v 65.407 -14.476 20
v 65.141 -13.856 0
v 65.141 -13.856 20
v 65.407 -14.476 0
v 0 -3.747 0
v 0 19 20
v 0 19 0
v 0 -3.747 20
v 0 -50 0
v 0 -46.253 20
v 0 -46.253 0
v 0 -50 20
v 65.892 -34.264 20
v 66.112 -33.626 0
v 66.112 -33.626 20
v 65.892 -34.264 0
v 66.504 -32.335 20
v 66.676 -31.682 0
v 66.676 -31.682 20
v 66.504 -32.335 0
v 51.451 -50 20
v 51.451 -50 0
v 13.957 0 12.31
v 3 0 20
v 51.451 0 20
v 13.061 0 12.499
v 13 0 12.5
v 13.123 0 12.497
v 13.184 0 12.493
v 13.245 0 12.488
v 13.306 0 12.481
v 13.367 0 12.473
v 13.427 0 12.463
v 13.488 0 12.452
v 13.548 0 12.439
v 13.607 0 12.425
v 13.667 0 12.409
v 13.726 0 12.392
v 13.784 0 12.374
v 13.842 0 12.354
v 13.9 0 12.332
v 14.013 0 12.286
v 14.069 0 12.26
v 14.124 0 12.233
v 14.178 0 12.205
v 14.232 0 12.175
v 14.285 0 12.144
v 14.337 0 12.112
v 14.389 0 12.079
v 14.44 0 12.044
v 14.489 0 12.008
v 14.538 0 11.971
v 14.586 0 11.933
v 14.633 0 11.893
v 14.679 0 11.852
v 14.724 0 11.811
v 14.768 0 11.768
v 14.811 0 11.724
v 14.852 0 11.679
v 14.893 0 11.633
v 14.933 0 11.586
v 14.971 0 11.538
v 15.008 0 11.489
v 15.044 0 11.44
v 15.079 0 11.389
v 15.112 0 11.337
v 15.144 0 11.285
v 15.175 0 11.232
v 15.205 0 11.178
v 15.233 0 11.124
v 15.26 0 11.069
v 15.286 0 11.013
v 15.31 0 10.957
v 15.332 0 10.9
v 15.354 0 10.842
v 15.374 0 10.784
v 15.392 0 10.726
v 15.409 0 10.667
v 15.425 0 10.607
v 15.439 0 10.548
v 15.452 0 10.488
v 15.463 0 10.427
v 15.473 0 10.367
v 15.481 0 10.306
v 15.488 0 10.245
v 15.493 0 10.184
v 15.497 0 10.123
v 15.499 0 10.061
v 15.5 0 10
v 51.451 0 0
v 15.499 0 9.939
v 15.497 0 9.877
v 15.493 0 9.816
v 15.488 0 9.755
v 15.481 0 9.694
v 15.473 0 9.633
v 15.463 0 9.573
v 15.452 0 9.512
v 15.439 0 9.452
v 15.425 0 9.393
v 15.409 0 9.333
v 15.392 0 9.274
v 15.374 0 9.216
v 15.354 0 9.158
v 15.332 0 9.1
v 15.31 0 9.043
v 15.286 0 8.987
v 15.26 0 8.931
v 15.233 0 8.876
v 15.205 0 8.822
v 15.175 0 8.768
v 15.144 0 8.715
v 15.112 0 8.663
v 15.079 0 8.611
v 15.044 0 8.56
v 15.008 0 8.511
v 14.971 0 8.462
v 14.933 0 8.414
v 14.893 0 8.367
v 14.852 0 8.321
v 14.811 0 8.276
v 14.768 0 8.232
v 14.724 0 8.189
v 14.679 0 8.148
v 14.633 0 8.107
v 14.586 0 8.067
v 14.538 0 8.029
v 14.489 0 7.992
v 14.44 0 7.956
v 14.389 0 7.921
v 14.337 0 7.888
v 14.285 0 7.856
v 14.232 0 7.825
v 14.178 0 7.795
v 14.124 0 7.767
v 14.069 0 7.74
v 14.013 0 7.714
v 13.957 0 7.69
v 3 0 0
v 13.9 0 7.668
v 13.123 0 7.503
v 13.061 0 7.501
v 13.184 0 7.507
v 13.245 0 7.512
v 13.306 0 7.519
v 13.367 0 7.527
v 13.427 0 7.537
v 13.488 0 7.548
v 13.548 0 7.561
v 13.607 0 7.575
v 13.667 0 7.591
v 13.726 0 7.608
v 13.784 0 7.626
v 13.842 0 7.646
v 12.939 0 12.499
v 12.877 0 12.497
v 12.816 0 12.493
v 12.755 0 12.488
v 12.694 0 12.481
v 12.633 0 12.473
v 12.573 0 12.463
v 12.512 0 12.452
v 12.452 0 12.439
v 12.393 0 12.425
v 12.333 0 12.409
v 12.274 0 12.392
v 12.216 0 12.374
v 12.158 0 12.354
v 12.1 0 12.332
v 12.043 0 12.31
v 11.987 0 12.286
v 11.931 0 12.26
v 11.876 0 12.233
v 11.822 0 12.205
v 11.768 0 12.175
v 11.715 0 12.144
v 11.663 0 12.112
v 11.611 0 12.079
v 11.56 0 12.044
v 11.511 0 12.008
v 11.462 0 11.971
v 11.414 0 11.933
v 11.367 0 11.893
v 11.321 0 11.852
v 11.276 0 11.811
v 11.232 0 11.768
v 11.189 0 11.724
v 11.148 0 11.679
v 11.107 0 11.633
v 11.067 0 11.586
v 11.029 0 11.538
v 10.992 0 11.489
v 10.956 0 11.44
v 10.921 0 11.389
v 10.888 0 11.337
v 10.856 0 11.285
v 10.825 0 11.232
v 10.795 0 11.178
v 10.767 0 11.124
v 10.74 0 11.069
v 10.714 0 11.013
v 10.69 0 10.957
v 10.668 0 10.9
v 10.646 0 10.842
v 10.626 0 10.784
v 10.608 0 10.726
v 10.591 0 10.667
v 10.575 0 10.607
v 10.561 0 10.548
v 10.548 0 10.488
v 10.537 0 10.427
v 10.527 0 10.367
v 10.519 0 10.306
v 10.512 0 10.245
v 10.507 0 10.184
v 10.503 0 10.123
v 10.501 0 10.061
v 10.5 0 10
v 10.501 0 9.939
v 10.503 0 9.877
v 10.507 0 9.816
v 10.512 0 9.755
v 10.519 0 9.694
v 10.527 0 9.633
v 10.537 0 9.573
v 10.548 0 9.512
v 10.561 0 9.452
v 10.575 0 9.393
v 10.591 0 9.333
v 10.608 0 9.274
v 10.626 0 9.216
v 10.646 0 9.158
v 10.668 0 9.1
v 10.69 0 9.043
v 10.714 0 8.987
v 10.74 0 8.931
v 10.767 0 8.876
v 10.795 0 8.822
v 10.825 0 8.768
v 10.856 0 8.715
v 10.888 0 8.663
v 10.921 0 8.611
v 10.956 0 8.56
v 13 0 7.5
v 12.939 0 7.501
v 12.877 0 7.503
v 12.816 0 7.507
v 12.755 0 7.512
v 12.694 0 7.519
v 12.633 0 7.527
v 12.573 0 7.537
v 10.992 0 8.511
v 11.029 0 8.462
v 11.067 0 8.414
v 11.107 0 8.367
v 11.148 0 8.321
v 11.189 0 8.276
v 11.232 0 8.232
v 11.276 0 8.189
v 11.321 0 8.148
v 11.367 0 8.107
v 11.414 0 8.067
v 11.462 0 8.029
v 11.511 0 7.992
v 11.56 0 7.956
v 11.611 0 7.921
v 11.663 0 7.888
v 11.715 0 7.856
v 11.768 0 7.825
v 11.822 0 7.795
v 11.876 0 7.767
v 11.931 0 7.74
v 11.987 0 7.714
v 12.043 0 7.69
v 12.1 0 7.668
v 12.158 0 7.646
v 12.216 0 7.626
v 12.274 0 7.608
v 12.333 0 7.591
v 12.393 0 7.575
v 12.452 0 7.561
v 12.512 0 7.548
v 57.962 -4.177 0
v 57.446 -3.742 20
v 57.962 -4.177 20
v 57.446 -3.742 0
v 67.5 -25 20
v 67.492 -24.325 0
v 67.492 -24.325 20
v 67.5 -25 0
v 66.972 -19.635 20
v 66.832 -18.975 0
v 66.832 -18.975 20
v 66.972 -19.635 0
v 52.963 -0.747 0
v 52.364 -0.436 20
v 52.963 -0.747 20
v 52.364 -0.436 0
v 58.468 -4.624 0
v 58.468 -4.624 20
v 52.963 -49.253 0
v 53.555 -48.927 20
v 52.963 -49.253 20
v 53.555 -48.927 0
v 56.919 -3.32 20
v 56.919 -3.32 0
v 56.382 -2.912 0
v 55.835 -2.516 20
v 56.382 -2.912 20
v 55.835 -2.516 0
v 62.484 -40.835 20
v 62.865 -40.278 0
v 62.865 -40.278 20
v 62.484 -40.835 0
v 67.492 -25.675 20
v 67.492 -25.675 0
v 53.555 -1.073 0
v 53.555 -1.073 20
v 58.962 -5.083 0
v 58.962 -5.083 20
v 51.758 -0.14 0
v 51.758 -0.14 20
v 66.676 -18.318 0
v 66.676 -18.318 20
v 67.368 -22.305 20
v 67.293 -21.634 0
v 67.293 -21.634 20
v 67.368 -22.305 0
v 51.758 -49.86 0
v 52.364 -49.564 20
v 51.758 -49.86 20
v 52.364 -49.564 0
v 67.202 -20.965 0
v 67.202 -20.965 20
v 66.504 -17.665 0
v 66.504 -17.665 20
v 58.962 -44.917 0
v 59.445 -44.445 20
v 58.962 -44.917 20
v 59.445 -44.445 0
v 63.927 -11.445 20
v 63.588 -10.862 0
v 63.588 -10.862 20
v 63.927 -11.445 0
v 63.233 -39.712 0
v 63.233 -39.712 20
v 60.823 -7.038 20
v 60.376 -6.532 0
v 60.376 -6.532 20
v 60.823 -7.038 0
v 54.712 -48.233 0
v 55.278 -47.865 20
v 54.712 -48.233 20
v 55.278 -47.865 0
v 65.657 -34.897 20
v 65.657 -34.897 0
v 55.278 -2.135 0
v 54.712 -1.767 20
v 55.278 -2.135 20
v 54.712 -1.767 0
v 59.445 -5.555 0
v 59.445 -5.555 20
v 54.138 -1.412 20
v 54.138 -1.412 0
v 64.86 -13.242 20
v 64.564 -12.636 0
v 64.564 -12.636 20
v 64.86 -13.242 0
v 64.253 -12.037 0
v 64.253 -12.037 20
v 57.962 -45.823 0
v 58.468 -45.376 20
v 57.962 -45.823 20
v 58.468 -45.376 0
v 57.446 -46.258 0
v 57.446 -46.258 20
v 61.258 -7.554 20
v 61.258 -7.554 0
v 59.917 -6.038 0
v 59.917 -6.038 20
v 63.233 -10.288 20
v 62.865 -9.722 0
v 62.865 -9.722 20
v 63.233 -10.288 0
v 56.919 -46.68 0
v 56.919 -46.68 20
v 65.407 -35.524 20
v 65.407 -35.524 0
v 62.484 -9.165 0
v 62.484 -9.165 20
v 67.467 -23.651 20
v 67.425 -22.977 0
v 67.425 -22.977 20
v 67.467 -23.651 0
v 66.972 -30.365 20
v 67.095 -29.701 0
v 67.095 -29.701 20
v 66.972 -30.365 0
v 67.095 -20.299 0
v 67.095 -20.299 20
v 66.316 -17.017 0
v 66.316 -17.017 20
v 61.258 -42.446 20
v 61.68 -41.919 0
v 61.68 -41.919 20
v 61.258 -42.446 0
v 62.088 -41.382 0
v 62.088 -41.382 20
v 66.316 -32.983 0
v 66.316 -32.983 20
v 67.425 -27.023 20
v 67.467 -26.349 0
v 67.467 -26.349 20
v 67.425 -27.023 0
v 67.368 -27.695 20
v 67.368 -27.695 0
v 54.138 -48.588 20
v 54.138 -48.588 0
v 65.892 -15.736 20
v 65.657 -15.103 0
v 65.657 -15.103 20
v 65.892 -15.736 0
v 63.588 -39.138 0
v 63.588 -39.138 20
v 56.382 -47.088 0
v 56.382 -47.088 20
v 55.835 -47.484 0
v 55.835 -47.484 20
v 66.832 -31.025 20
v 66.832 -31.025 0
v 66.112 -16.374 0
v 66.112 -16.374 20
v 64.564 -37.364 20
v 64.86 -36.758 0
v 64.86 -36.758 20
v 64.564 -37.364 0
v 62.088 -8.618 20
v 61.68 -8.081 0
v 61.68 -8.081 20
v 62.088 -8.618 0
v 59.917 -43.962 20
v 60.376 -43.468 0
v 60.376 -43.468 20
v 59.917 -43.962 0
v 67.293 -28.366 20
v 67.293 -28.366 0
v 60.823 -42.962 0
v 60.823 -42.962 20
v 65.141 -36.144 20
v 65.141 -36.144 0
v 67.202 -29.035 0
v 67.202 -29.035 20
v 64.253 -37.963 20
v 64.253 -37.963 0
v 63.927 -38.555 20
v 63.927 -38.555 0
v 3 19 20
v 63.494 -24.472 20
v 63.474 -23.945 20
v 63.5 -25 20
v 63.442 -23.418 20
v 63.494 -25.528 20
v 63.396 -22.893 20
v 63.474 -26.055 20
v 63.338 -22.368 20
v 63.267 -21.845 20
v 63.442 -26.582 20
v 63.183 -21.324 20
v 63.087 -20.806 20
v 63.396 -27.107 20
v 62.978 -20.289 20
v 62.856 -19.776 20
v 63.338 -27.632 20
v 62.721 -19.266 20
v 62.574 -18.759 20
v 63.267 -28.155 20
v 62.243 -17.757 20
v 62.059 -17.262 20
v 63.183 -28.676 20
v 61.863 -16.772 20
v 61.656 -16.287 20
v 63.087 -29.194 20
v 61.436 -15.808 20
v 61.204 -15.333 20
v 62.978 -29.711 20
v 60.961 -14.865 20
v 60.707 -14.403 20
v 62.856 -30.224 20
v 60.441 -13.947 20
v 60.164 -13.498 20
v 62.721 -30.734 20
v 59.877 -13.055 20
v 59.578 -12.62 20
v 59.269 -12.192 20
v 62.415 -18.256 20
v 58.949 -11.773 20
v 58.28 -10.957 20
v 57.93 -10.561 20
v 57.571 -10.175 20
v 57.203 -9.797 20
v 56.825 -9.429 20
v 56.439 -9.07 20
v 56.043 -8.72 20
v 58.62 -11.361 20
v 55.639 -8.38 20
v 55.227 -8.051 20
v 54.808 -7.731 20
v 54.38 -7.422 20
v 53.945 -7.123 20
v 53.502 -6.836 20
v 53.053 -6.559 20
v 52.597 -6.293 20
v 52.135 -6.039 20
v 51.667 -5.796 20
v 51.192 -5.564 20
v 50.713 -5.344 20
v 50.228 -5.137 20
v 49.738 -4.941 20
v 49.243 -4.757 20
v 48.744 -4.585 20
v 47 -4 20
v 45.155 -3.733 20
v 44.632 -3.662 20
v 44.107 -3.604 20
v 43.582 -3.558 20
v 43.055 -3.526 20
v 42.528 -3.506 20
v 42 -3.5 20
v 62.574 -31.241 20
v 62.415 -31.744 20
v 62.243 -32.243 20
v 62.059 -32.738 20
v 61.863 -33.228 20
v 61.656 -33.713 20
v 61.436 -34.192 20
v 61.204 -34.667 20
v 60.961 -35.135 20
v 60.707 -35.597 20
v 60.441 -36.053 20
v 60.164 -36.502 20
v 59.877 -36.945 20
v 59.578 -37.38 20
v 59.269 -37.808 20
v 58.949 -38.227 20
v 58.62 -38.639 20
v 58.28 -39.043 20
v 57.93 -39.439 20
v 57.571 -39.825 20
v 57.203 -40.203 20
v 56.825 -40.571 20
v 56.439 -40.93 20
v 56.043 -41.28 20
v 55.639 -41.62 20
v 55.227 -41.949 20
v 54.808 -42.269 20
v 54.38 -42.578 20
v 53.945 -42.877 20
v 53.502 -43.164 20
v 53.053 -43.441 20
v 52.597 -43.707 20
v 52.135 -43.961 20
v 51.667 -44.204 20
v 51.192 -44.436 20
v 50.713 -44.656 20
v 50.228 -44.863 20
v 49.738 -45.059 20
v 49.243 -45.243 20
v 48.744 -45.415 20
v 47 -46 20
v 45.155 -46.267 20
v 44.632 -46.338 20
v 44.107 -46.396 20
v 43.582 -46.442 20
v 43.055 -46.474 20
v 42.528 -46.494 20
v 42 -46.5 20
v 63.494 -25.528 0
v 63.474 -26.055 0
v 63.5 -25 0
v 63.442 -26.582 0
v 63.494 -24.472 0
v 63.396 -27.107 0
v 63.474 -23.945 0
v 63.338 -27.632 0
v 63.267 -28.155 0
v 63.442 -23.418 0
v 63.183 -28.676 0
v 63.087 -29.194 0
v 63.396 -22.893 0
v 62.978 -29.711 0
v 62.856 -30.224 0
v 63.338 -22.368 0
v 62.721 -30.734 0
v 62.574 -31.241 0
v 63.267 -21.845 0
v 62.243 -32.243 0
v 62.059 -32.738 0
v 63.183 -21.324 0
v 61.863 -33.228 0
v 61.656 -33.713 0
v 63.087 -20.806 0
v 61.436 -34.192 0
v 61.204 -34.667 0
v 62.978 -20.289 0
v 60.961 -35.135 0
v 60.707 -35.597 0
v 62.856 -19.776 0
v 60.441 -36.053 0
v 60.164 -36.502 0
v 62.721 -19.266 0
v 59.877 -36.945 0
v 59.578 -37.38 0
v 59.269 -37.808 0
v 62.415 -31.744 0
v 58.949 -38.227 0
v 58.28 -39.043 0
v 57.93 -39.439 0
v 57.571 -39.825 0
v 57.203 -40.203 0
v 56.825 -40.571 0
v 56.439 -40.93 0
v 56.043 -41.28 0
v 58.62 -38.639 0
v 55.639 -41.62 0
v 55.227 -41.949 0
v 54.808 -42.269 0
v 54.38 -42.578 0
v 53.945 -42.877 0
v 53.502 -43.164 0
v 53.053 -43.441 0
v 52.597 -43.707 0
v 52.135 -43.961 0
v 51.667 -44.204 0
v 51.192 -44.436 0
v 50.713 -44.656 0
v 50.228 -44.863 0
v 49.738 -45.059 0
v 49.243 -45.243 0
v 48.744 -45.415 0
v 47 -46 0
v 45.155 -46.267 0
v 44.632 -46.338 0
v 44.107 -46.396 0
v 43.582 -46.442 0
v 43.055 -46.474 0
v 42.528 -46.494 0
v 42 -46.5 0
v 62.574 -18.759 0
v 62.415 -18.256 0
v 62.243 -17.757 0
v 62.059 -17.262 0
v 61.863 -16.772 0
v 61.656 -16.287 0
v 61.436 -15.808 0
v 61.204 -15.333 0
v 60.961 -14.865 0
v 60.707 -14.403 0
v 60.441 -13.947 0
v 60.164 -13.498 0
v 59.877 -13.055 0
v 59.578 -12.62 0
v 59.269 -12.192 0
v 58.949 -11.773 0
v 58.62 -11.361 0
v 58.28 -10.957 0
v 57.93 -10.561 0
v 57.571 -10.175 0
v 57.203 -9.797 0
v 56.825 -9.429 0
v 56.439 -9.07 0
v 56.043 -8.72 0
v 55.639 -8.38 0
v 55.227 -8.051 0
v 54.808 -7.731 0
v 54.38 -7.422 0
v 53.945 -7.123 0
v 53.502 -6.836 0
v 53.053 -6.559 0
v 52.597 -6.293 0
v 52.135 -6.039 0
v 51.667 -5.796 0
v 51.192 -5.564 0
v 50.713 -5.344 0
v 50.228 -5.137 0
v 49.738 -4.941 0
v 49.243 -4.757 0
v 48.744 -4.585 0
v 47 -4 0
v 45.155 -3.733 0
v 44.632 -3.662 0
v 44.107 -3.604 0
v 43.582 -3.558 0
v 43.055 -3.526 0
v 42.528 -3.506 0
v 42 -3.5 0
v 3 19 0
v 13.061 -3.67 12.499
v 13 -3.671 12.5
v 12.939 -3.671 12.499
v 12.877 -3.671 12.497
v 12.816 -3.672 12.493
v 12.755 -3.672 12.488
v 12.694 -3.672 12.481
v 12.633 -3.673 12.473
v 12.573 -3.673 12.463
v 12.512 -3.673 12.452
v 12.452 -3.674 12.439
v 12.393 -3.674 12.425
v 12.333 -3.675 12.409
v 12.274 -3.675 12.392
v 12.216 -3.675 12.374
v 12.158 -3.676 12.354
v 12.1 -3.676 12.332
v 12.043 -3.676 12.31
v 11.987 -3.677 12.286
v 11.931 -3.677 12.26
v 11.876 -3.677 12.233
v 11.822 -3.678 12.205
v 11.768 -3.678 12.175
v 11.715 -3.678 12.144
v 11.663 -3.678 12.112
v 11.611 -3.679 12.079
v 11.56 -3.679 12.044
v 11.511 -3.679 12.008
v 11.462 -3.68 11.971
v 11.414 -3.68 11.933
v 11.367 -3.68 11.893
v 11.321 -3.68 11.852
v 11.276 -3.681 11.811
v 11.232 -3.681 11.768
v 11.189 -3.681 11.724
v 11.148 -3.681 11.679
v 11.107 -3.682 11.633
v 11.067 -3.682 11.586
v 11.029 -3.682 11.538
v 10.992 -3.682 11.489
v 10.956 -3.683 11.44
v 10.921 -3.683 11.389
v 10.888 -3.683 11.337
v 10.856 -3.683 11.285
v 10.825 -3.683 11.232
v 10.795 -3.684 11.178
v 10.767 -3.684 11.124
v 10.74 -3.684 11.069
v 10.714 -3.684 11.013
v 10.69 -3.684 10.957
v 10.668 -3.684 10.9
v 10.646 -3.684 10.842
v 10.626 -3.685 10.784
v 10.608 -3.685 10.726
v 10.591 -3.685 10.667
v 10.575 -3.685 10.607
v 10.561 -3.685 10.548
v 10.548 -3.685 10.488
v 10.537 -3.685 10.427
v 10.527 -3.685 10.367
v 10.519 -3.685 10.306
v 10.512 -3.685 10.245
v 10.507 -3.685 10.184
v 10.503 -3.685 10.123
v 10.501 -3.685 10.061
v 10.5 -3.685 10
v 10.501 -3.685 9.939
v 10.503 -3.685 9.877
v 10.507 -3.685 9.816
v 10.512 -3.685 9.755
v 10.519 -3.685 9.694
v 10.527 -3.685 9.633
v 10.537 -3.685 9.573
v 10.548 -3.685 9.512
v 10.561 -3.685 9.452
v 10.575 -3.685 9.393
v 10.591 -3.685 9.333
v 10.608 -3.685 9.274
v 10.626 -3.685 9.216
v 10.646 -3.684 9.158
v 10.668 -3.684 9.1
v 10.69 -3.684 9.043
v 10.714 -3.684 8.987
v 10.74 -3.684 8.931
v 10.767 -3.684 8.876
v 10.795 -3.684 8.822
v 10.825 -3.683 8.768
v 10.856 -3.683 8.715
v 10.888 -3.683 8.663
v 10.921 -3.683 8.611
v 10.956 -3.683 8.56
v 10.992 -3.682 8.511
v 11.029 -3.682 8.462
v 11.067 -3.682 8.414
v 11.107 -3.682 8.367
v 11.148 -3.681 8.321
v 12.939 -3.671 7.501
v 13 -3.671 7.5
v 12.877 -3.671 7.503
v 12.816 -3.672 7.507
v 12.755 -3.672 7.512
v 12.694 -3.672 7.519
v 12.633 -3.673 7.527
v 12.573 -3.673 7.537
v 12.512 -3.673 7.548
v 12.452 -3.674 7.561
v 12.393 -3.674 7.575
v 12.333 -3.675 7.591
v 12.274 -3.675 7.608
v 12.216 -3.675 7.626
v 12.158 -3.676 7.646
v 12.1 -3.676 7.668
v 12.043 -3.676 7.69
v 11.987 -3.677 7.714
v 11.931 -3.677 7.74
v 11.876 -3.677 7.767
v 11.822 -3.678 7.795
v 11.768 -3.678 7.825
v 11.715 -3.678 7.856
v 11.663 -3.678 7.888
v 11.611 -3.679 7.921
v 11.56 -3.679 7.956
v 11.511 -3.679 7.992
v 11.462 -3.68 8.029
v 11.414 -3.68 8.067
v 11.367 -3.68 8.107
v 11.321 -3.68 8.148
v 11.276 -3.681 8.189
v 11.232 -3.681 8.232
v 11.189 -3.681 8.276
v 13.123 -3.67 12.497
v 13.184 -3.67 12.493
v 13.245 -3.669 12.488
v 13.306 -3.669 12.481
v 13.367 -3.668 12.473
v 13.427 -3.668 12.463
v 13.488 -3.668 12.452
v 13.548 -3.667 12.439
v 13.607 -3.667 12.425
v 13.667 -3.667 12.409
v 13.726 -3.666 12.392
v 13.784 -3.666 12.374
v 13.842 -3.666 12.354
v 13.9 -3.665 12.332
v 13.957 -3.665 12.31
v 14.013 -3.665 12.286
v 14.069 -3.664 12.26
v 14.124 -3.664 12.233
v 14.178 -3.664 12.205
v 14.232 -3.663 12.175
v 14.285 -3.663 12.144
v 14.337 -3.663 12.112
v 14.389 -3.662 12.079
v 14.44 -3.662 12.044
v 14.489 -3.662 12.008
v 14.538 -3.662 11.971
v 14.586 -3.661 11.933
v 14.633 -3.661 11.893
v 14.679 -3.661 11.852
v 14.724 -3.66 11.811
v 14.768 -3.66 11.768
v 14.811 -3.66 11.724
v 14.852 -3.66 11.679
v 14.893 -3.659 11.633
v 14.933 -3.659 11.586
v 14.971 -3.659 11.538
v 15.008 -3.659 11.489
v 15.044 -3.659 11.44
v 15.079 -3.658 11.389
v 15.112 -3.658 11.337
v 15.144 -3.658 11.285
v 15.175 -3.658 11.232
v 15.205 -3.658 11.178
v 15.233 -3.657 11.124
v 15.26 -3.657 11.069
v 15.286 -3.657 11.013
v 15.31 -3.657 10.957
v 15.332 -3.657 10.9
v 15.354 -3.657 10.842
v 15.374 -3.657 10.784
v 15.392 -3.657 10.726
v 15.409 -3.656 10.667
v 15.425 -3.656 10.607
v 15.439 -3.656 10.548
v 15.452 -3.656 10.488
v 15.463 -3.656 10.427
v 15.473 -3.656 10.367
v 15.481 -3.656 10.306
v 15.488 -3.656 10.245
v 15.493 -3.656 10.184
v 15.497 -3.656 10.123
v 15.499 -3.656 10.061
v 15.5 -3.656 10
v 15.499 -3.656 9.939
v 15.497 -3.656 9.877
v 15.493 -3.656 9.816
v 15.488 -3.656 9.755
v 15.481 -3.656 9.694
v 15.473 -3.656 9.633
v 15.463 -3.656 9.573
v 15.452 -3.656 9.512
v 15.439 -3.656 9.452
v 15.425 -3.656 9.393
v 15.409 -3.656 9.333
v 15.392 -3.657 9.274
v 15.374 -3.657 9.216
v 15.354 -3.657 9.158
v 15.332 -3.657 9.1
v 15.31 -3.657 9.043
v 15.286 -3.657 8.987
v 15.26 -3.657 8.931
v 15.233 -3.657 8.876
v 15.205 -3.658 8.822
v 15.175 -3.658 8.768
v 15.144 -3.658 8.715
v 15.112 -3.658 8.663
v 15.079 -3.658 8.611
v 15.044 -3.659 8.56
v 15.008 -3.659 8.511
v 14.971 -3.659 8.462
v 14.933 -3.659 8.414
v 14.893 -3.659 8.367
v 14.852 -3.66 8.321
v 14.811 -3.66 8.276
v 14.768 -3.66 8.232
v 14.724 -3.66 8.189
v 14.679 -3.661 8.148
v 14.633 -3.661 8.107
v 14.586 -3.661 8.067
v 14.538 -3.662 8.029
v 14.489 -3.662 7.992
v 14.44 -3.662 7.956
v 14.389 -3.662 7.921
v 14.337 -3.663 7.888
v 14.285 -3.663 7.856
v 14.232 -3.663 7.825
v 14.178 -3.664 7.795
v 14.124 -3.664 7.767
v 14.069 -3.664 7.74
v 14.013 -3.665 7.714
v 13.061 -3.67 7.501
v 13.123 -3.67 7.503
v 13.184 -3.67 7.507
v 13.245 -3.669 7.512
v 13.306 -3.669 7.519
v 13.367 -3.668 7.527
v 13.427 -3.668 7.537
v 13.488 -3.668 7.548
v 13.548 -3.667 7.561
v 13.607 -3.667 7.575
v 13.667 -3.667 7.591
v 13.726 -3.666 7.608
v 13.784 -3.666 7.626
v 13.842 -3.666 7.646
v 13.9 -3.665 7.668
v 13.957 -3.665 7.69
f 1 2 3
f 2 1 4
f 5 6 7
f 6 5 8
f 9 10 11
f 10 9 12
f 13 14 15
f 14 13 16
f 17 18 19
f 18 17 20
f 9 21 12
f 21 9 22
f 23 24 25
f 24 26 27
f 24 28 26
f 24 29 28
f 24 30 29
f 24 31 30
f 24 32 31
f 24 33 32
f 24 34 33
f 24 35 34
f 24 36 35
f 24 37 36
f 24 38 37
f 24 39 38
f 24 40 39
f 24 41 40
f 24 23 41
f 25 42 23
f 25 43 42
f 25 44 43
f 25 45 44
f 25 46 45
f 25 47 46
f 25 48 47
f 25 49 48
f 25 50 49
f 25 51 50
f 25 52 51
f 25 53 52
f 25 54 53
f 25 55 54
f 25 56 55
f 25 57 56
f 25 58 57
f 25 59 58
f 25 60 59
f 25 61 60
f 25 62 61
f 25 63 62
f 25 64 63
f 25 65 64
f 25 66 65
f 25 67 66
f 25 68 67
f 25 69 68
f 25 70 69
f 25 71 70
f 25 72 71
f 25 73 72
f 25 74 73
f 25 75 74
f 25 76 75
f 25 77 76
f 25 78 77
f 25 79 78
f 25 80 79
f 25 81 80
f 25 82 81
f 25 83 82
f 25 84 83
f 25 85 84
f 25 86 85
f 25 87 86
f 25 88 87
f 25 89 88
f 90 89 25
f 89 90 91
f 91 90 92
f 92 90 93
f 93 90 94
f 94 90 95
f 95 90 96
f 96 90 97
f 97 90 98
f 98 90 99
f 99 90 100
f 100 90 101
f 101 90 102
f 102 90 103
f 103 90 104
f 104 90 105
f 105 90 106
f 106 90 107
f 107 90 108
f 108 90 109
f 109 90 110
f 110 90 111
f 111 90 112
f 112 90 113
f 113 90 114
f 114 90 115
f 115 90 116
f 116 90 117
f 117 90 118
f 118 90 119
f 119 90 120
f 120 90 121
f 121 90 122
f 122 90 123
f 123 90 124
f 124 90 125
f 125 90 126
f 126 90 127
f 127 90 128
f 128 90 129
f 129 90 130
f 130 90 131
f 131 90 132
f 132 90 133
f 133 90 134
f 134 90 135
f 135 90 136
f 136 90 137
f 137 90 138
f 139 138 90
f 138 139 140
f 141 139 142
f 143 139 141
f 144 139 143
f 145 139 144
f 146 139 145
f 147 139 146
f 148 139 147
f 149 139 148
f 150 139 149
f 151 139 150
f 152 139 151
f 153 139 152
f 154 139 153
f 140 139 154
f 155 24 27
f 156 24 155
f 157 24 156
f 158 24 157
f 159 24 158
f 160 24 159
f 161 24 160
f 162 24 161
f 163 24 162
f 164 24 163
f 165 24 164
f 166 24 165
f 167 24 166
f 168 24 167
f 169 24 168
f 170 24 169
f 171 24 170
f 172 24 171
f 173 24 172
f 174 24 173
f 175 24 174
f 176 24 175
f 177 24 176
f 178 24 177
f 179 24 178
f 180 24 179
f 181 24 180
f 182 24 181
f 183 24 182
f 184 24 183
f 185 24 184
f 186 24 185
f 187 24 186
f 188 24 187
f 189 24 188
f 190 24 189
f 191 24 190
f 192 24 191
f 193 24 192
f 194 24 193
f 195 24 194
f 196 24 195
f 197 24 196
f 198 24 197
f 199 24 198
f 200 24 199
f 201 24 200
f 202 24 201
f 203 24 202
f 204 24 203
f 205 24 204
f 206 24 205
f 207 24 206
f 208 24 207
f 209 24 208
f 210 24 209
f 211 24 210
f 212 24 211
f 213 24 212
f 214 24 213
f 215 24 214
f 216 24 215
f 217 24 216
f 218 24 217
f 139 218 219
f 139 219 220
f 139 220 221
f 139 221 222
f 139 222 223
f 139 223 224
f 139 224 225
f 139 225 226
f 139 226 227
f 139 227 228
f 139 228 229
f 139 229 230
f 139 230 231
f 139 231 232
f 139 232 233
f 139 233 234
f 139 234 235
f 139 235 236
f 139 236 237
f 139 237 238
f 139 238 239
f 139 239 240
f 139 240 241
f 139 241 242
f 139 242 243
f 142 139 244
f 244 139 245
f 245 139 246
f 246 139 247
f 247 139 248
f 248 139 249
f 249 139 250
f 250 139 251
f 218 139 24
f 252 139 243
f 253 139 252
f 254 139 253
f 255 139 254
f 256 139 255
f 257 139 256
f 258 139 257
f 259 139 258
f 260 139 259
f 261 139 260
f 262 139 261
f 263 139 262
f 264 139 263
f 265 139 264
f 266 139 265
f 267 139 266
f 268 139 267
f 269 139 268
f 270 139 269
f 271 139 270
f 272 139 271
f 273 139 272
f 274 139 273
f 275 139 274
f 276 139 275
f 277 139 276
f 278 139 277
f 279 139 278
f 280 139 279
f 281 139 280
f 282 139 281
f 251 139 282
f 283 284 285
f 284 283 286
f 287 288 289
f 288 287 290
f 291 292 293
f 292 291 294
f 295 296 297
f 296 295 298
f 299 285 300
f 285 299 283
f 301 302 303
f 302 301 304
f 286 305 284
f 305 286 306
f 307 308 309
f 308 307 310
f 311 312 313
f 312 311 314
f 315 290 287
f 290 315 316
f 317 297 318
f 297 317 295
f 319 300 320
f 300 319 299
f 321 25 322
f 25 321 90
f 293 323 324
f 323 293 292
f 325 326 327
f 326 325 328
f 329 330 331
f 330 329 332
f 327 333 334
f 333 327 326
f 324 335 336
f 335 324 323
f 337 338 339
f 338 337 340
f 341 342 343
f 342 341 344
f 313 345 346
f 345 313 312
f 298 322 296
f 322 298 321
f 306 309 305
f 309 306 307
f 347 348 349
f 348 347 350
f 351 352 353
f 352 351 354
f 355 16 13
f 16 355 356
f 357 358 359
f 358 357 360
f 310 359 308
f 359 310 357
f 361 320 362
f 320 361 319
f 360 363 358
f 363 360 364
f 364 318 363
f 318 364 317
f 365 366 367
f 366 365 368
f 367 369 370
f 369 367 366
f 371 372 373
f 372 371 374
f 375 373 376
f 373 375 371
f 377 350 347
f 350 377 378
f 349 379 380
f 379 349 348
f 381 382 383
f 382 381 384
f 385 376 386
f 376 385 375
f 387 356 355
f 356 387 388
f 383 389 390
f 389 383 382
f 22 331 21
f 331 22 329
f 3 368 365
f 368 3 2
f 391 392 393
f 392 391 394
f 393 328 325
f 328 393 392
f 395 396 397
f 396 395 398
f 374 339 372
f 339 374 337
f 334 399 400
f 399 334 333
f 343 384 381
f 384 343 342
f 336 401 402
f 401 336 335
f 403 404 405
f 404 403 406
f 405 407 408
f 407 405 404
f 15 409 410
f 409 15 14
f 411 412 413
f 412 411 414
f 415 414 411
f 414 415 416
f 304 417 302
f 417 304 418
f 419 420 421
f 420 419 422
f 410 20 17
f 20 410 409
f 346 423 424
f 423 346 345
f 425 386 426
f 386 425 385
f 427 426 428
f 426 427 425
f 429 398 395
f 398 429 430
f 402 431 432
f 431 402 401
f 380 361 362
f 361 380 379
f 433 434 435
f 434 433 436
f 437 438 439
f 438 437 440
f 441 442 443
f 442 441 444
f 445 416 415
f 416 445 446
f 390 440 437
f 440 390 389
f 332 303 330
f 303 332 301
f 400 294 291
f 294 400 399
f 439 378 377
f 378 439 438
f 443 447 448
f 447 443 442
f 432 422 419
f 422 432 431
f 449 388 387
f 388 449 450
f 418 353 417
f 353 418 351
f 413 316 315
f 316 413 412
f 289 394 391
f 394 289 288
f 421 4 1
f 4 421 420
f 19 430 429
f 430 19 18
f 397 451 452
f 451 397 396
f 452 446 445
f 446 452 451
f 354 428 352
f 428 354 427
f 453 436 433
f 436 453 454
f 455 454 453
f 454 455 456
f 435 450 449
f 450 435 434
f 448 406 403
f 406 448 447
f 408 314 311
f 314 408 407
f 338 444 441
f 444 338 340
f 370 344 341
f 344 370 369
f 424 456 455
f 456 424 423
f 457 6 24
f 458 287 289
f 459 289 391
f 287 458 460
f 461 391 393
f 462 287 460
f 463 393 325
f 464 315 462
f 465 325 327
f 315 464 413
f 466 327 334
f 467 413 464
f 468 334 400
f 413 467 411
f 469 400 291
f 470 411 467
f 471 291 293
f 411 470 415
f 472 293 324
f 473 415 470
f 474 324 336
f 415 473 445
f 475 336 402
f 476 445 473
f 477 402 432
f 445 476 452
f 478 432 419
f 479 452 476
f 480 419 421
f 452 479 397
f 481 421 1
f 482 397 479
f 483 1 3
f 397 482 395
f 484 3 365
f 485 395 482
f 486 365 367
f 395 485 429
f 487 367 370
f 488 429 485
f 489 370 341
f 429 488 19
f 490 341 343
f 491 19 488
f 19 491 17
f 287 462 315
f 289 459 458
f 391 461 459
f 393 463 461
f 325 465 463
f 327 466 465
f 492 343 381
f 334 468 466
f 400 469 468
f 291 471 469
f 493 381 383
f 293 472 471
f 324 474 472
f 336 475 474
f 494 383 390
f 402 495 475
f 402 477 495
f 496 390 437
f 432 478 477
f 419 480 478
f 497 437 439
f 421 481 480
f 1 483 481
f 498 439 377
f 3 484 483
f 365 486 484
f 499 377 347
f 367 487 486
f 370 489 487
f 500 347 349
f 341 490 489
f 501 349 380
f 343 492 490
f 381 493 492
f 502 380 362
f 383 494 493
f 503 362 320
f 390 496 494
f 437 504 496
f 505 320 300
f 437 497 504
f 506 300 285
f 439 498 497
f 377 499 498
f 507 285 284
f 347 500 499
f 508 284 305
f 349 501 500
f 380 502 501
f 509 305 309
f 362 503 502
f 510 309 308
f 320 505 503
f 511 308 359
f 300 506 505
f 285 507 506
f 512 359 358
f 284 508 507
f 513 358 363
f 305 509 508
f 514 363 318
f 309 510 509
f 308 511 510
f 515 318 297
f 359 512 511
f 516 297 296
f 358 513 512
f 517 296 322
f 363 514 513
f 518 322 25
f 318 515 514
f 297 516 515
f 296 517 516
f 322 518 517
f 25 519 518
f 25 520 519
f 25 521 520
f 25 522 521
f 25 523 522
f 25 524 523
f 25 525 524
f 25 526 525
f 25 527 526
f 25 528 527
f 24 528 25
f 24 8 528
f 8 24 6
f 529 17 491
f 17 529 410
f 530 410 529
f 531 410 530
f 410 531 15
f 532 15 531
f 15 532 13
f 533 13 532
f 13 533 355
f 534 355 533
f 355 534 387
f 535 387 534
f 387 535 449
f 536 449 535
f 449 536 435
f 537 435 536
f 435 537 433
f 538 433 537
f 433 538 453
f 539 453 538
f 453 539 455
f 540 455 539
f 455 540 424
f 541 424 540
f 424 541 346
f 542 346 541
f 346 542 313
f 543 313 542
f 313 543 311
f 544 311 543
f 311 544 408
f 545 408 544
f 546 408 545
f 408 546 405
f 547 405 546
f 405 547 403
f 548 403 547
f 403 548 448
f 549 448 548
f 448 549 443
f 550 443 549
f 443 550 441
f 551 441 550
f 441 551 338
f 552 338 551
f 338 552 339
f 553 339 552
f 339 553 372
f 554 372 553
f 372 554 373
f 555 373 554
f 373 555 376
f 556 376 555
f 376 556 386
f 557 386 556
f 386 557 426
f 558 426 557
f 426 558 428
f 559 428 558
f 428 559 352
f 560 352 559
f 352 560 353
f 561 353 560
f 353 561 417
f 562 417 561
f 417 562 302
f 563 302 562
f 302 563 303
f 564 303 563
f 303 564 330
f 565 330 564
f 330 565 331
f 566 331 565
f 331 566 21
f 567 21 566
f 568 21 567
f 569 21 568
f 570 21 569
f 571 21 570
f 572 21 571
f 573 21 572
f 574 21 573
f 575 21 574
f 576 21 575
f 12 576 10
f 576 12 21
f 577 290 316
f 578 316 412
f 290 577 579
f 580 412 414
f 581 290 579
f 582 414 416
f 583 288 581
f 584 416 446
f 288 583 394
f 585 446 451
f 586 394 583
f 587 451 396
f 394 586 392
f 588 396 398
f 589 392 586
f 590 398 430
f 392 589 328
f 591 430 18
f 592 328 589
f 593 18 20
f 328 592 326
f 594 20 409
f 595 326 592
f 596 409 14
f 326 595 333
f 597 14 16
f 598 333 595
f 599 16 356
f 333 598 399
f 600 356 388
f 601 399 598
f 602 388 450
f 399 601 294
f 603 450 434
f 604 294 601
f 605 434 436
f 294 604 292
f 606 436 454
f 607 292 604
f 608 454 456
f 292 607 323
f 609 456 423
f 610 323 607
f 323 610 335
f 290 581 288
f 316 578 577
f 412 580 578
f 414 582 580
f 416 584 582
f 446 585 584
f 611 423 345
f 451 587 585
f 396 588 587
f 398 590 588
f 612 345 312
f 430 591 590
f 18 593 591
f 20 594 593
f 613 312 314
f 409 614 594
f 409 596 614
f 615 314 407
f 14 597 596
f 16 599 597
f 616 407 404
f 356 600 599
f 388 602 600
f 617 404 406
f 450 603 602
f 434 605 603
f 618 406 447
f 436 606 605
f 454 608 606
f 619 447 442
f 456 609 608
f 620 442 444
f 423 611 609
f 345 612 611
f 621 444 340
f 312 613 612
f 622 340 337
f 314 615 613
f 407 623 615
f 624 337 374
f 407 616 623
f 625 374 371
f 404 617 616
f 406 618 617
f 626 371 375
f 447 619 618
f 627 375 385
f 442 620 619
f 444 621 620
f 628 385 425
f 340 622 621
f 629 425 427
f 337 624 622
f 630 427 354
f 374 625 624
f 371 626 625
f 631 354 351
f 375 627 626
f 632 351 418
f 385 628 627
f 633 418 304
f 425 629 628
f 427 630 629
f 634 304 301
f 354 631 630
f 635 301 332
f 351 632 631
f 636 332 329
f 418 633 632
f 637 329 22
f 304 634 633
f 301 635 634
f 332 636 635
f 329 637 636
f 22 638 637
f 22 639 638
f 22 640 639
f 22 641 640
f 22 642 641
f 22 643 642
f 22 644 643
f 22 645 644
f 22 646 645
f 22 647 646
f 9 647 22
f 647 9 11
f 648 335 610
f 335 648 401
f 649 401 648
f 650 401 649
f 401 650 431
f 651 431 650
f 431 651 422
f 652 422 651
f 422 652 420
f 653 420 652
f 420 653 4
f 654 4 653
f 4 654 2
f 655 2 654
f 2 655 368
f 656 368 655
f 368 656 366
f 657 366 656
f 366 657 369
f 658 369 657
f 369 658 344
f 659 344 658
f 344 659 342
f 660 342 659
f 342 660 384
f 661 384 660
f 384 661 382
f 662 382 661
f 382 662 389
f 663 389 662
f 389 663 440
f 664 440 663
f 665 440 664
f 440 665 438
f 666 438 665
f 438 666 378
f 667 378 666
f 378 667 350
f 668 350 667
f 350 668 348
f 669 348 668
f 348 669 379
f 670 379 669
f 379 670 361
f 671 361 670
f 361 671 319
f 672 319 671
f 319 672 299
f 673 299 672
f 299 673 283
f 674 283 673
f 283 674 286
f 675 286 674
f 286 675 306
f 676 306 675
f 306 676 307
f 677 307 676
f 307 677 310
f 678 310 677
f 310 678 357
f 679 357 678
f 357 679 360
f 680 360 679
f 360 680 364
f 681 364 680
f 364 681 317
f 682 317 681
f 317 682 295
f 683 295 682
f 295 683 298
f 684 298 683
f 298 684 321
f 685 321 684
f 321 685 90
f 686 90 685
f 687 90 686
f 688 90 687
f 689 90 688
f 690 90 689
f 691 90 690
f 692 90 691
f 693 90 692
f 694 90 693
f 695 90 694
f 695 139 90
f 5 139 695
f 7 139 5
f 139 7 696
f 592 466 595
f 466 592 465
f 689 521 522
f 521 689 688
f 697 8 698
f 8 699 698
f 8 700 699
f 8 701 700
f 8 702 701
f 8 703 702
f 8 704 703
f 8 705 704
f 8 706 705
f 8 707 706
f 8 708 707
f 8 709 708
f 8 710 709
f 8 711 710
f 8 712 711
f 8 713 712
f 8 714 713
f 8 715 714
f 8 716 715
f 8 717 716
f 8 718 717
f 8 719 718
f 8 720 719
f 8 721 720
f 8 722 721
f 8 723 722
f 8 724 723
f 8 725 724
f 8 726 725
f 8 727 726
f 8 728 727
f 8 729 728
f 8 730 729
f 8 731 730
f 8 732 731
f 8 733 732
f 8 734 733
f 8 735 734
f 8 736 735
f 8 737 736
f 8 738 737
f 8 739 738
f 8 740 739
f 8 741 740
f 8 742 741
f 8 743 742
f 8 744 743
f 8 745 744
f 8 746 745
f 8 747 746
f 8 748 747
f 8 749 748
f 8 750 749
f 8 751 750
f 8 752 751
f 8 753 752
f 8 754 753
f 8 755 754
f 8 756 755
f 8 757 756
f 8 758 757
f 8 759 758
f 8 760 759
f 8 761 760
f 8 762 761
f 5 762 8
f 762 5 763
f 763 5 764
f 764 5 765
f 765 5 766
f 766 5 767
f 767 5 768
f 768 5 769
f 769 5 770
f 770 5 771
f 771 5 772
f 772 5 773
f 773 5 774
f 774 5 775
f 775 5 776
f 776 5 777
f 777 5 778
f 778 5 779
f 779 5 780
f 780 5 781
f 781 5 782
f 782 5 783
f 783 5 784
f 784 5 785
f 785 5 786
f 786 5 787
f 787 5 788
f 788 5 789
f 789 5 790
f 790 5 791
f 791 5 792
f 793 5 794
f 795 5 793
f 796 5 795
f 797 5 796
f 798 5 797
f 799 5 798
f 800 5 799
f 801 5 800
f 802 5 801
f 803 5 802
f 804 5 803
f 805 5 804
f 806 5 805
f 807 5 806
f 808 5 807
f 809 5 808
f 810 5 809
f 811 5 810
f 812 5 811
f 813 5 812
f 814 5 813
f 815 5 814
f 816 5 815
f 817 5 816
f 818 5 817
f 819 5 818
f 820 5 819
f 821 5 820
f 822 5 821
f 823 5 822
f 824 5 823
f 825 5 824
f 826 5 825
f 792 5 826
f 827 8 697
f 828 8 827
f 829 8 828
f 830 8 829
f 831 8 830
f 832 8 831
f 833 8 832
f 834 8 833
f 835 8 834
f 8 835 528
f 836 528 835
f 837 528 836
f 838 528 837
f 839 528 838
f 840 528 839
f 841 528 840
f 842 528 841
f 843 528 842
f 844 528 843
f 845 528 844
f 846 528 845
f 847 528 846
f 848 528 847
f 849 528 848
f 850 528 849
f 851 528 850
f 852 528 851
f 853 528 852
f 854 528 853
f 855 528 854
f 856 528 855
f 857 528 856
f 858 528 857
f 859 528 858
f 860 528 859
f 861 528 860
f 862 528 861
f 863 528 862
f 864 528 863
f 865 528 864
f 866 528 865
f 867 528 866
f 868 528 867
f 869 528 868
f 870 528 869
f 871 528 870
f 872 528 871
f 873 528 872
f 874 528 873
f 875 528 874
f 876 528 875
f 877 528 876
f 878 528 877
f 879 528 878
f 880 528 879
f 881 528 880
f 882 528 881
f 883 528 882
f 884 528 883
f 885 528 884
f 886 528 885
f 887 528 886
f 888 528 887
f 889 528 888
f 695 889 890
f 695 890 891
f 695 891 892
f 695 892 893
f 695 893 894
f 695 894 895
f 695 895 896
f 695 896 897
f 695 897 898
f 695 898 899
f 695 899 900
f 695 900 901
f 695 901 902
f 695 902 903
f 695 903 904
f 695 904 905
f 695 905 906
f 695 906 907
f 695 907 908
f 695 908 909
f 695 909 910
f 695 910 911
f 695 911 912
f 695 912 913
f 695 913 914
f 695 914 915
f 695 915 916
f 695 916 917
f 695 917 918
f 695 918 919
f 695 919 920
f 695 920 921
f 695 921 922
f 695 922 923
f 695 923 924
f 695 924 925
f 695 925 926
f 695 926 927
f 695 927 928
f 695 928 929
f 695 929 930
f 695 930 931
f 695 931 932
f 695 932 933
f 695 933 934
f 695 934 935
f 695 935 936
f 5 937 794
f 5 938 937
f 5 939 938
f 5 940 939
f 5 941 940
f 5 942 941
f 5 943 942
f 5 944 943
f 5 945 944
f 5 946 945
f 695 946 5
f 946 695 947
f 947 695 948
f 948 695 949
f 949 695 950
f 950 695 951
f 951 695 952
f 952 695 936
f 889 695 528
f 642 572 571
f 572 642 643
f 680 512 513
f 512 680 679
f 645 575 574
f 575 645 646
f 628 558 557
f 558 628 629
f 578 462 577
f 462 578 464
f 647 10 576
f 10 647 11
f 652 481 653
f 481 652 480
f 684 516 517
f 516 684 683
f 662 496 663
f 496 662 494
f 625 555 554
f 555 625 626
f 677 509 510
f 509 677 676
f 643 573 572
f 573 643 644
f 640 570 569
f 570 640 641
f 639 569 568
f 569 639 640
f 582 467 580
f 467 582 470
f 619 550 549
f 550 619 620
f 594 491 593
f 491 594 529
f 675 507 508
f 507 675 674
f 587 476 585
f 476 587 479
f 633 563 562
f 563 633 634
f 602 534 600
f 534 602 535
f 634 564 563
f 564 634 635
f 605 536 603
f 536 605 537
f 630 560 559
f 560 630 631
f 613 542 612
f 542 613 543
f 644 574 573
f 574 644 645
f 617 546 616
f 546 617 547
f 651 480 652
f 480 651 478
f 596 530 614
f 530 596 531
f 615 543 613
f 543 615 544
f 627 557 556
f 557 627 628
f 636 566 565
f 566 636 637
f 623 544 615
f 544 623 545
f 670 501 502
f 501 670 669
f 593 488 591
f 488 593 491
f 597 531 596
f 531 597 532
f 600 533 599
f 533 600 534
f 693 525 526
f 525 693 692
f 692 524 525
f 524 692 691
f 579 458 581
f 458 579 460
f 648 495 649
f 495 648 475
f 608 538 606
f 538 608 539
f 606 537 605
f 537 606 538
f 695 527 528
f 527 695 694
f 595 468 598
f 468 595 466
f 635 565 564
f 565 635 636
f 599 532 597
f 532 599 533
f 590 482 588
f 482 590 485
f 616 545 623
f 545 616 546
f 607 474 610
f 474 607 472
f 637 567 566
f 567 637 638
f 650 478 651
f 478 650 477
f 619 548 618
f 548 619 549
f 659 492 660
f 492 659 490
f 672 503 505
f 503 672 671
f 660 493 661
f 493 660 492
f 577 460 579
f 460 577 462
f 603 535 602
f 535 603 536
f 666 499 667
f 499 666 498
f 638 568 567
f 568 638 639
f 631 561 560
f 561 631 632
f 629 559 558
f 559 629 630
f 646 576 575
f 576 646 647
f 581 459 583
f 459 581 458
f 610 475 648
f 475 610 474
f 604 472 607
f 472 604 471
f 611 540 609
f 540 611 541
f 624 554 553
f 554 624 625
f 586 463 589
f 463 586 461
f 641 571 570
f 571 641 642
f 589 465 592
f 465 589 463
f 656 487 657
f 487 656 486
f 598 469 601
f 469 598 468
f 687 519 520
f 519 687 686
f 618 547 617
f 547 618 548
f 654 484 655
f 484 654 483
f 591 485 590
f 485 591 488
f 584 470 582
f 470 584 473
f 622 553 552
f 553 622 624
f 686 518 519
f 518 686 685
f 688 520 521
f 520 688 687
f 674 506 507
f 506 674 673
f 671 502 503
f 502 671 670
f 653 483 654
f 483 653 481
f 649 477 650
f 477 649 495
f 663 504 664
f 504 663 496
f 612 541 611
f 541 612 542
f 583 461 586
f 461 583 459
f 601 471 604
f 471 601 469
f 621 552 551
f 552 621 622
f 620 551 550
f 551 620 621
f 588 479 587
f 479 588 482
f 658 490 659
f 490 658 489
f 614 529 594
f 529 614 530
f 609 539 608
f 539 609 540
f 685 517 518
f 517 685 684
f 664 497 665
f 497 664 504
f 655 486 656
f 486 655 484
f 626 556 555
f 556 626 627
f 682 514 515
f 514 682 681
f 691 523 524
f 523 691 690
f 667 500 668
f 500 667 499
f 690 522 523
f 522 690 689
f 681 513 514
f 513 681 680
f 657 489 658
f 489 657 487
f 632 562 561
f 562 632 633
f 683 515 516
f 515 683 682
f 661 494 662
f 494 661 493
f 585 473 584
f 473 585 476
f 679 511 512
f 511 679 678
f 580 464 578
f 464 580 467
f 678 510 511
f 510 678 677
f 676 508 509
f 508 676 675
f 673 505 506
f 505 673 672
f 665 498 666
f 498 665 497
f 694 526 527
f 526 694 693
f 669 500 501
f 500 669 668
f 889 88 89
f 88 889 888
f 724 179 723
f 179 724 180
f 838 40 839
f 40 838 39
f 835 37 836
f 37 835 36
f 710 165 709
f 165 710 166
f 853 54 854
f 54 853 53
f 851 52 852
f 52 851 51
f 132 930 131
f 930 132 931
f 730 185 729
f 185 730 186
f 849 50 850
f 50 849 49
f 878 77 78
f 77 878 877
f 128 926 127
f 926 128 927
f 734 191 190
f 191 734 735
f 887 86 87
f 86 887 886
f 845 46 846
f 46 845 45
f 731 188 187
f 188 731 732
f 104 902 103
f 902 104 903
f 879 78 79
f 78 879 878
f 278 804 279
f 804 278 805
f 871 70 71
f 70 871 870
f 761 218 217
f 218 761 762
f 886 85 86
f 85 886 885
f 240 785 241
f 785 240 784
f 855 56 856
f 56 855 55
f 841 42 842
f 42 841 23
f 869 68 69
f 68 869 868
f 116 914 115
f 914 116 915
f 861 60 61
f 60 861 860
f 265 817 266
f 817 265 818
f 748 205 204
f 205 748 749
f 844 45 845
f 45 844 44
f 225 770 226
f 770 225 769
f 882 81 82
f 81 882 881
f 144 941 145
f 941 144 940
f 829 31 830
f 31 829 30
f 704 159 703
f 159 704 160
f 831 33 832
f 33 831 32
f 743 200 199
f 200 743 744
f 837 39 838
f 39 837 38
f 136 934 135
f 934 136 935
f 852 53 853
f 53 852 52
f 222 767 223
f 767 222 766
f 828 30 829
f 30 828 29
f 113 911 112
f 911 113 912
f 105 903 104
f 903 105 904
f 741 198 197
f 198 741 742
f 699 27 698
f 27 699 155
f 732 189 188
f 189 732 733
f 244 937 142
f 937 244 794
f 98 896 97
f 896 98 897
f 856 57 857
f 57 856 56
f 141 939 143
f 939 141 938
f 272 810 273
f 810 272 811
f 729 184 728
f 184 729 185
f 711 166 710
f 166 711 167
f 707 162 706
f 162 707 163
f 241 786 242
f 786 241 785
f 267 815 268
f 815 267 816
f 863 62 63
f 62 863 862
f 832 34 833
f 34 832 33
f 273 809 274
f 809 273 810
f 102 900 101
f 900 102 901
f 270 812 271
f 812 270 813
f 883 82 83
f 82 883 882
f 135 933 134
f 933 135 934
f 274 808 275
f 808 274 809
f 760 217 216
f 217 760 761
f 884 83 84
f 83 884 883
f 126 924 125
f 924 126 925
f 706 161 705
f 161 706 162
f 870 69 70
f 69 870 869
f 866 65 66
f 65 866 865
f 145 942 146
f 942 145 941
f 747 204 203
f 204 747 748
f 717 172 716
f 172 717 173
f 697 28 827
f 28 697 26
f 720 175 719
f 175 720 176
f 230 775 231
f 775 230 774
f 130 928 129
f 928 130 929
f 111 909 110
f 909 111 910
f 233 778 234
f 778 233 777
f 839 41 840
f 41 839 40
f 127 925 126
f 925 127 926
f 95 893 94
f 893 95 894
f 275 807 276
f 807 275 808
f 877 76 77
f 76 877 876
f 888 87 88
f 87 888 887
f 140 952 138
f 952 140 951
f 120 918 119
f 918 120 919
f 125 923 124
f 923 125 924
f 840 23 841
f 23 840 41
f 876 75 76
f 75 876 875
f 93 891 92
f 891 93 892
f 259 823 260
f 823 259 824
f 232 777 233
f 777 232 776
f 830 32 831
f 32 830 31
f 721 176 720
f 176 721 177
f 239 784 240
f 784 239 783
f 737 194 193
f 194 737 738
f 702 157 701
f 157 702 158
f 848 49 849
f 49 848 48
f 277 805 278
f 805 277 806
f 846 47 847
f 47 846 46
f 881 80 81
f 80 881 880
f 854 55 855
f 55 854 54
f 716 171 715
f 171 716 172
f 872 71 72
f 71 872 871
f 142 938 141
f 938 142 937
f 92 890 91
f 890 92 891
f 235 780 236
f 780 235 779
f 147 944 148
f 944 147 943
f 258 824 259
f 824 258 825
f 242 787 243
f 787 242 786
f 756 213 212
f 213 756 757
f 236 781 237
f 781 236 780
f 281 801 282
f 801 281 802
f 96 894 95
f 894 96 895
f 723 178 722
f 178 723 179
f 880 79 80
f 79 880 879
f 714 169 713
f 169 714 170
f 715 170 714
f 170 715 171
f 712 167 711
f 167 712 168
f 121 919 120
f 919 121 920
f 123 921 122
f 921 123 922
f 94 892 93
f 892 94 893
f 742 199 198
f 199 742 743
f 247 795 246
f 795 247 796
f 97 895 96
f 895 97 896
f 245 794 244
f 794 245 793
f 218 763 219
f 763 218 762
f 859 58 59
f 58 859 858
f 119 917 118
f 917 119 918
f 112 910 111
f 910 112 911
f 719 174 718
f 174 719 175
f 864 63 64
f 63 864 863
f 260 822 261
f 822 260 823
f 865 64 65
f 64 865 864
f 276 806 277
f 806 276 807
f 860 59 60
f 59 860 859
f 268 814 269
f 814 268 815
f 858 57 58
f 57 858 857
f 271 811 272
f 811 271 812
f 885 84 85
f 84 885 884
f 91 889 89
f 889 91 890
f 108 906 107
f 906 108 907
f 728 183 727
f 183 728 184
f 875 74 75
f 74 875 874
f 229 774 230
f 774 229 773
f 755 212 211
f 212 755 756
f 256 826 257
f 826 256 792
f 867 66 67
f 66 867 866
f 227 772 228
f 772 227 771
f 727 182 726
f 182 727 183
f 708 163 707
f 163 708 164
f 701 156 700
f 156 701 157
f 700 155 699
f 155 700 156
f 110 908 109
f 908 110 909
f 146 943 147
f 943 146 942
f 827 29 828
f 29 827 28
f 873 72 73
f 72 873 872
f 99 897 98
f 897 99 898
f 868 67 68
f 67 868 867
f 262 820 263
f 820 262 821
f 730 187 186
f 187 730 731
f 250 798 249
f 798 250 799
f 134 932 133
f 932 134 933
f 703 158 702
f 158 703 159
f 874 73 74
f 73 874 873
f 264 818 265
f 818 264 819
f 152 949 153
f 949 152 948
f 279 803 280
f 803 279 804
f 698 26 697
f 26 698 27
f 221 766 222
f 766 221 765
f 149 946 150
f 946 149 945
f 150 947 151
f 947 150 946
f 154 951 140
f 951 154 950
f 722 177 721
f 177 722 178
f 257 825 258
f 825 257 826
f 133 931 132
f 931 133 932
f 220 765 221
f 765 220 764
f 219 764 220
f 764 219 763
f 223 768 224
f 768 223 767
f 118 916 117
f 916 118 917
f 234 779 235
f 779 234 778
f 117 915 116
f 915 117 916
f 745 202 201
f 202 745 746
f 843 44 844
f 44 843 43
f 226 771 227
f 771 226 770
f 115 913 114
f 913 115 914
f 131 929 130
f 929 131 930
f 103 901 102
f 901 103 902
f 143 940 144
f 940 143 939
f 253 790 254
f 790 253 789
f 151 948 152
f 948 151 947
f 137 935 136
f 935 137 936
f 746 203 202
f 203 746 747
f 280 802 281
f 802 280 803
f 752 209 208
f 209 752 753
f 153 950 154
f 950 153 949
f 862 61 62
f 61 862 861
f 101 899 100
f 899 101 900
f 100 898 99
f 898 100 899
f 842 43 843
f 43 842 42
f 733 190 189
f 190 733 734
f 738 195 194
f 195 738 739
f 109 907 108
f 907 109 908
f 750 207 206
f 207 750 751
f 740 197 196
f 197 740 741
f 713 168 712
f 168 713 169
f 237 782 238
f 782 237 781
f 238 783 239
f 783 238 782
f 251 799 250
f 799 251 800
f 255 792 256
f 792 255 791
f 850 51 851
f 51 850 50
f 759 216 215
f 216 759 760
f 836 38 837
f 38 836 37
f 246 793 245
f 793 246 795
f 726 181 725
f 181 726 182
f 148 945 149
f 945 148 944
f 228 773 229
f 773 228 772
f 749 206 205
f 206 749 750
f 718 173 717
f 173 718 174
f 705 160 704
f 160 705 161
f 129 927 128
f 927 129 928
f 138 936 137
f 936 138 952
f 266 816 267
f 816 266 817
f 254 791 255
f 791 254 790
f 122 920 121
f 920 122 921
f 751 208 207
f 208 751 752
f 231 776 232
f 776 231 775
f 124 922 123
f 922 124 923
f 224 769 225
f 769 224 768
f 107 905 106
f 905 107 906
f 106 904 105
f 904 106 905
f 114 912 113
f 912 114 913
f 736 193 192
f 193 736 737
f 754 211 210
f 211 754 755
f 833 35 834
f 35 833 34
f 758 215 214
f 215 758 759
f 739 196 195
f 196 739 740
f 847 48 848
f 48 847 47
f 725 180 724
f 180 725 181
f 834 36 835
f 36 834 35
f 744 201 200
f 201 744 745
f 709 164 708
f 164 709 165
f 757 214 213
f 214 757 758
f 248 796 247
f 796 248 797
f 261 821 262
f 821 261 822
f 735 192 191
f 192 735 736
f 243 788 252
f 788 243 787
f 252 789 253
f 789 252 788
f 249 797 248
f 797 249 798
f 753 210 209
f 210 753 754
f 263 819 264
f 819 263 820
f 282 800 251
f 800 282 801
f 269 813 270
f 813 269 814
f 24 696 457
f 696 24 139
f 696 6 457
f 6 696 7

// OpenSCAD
$fn = 256;
depth = 50;
width = 20;
length = 40;
wall = 5;
height = 20;

cube([ 3, 19, width ]);

module shell() {
  hull() {
    translate([ 0, -depth, 0 ]) {
      cube([ depth, depth, height ]);

      intersection() {
        translate([ length, depth / 2, 0 ])
            cylinder(d = depth * 1.1, h = width);
        cube([ depth * 2, depth, height ]);
      }
    }
  }
}

module inner() {
  hull() {
    translate([ -50, 8, 1 ]) cube([ length + 50, depth - 8, height * 2 ]);
    translate([ length - width / 4, (depth + 8) / 2, 0 ])
        cylinder(d = depth * 0.86, h = height * 2);
  }
}

difference() {
  shell();
  translate([ 7, -depth - 4, -2 ]) inner();
  translate([ 13, 20, height / 2 ]) rotate([ 90, 0, 0 ])
      cylinder(d = 5, h = 40);
}
